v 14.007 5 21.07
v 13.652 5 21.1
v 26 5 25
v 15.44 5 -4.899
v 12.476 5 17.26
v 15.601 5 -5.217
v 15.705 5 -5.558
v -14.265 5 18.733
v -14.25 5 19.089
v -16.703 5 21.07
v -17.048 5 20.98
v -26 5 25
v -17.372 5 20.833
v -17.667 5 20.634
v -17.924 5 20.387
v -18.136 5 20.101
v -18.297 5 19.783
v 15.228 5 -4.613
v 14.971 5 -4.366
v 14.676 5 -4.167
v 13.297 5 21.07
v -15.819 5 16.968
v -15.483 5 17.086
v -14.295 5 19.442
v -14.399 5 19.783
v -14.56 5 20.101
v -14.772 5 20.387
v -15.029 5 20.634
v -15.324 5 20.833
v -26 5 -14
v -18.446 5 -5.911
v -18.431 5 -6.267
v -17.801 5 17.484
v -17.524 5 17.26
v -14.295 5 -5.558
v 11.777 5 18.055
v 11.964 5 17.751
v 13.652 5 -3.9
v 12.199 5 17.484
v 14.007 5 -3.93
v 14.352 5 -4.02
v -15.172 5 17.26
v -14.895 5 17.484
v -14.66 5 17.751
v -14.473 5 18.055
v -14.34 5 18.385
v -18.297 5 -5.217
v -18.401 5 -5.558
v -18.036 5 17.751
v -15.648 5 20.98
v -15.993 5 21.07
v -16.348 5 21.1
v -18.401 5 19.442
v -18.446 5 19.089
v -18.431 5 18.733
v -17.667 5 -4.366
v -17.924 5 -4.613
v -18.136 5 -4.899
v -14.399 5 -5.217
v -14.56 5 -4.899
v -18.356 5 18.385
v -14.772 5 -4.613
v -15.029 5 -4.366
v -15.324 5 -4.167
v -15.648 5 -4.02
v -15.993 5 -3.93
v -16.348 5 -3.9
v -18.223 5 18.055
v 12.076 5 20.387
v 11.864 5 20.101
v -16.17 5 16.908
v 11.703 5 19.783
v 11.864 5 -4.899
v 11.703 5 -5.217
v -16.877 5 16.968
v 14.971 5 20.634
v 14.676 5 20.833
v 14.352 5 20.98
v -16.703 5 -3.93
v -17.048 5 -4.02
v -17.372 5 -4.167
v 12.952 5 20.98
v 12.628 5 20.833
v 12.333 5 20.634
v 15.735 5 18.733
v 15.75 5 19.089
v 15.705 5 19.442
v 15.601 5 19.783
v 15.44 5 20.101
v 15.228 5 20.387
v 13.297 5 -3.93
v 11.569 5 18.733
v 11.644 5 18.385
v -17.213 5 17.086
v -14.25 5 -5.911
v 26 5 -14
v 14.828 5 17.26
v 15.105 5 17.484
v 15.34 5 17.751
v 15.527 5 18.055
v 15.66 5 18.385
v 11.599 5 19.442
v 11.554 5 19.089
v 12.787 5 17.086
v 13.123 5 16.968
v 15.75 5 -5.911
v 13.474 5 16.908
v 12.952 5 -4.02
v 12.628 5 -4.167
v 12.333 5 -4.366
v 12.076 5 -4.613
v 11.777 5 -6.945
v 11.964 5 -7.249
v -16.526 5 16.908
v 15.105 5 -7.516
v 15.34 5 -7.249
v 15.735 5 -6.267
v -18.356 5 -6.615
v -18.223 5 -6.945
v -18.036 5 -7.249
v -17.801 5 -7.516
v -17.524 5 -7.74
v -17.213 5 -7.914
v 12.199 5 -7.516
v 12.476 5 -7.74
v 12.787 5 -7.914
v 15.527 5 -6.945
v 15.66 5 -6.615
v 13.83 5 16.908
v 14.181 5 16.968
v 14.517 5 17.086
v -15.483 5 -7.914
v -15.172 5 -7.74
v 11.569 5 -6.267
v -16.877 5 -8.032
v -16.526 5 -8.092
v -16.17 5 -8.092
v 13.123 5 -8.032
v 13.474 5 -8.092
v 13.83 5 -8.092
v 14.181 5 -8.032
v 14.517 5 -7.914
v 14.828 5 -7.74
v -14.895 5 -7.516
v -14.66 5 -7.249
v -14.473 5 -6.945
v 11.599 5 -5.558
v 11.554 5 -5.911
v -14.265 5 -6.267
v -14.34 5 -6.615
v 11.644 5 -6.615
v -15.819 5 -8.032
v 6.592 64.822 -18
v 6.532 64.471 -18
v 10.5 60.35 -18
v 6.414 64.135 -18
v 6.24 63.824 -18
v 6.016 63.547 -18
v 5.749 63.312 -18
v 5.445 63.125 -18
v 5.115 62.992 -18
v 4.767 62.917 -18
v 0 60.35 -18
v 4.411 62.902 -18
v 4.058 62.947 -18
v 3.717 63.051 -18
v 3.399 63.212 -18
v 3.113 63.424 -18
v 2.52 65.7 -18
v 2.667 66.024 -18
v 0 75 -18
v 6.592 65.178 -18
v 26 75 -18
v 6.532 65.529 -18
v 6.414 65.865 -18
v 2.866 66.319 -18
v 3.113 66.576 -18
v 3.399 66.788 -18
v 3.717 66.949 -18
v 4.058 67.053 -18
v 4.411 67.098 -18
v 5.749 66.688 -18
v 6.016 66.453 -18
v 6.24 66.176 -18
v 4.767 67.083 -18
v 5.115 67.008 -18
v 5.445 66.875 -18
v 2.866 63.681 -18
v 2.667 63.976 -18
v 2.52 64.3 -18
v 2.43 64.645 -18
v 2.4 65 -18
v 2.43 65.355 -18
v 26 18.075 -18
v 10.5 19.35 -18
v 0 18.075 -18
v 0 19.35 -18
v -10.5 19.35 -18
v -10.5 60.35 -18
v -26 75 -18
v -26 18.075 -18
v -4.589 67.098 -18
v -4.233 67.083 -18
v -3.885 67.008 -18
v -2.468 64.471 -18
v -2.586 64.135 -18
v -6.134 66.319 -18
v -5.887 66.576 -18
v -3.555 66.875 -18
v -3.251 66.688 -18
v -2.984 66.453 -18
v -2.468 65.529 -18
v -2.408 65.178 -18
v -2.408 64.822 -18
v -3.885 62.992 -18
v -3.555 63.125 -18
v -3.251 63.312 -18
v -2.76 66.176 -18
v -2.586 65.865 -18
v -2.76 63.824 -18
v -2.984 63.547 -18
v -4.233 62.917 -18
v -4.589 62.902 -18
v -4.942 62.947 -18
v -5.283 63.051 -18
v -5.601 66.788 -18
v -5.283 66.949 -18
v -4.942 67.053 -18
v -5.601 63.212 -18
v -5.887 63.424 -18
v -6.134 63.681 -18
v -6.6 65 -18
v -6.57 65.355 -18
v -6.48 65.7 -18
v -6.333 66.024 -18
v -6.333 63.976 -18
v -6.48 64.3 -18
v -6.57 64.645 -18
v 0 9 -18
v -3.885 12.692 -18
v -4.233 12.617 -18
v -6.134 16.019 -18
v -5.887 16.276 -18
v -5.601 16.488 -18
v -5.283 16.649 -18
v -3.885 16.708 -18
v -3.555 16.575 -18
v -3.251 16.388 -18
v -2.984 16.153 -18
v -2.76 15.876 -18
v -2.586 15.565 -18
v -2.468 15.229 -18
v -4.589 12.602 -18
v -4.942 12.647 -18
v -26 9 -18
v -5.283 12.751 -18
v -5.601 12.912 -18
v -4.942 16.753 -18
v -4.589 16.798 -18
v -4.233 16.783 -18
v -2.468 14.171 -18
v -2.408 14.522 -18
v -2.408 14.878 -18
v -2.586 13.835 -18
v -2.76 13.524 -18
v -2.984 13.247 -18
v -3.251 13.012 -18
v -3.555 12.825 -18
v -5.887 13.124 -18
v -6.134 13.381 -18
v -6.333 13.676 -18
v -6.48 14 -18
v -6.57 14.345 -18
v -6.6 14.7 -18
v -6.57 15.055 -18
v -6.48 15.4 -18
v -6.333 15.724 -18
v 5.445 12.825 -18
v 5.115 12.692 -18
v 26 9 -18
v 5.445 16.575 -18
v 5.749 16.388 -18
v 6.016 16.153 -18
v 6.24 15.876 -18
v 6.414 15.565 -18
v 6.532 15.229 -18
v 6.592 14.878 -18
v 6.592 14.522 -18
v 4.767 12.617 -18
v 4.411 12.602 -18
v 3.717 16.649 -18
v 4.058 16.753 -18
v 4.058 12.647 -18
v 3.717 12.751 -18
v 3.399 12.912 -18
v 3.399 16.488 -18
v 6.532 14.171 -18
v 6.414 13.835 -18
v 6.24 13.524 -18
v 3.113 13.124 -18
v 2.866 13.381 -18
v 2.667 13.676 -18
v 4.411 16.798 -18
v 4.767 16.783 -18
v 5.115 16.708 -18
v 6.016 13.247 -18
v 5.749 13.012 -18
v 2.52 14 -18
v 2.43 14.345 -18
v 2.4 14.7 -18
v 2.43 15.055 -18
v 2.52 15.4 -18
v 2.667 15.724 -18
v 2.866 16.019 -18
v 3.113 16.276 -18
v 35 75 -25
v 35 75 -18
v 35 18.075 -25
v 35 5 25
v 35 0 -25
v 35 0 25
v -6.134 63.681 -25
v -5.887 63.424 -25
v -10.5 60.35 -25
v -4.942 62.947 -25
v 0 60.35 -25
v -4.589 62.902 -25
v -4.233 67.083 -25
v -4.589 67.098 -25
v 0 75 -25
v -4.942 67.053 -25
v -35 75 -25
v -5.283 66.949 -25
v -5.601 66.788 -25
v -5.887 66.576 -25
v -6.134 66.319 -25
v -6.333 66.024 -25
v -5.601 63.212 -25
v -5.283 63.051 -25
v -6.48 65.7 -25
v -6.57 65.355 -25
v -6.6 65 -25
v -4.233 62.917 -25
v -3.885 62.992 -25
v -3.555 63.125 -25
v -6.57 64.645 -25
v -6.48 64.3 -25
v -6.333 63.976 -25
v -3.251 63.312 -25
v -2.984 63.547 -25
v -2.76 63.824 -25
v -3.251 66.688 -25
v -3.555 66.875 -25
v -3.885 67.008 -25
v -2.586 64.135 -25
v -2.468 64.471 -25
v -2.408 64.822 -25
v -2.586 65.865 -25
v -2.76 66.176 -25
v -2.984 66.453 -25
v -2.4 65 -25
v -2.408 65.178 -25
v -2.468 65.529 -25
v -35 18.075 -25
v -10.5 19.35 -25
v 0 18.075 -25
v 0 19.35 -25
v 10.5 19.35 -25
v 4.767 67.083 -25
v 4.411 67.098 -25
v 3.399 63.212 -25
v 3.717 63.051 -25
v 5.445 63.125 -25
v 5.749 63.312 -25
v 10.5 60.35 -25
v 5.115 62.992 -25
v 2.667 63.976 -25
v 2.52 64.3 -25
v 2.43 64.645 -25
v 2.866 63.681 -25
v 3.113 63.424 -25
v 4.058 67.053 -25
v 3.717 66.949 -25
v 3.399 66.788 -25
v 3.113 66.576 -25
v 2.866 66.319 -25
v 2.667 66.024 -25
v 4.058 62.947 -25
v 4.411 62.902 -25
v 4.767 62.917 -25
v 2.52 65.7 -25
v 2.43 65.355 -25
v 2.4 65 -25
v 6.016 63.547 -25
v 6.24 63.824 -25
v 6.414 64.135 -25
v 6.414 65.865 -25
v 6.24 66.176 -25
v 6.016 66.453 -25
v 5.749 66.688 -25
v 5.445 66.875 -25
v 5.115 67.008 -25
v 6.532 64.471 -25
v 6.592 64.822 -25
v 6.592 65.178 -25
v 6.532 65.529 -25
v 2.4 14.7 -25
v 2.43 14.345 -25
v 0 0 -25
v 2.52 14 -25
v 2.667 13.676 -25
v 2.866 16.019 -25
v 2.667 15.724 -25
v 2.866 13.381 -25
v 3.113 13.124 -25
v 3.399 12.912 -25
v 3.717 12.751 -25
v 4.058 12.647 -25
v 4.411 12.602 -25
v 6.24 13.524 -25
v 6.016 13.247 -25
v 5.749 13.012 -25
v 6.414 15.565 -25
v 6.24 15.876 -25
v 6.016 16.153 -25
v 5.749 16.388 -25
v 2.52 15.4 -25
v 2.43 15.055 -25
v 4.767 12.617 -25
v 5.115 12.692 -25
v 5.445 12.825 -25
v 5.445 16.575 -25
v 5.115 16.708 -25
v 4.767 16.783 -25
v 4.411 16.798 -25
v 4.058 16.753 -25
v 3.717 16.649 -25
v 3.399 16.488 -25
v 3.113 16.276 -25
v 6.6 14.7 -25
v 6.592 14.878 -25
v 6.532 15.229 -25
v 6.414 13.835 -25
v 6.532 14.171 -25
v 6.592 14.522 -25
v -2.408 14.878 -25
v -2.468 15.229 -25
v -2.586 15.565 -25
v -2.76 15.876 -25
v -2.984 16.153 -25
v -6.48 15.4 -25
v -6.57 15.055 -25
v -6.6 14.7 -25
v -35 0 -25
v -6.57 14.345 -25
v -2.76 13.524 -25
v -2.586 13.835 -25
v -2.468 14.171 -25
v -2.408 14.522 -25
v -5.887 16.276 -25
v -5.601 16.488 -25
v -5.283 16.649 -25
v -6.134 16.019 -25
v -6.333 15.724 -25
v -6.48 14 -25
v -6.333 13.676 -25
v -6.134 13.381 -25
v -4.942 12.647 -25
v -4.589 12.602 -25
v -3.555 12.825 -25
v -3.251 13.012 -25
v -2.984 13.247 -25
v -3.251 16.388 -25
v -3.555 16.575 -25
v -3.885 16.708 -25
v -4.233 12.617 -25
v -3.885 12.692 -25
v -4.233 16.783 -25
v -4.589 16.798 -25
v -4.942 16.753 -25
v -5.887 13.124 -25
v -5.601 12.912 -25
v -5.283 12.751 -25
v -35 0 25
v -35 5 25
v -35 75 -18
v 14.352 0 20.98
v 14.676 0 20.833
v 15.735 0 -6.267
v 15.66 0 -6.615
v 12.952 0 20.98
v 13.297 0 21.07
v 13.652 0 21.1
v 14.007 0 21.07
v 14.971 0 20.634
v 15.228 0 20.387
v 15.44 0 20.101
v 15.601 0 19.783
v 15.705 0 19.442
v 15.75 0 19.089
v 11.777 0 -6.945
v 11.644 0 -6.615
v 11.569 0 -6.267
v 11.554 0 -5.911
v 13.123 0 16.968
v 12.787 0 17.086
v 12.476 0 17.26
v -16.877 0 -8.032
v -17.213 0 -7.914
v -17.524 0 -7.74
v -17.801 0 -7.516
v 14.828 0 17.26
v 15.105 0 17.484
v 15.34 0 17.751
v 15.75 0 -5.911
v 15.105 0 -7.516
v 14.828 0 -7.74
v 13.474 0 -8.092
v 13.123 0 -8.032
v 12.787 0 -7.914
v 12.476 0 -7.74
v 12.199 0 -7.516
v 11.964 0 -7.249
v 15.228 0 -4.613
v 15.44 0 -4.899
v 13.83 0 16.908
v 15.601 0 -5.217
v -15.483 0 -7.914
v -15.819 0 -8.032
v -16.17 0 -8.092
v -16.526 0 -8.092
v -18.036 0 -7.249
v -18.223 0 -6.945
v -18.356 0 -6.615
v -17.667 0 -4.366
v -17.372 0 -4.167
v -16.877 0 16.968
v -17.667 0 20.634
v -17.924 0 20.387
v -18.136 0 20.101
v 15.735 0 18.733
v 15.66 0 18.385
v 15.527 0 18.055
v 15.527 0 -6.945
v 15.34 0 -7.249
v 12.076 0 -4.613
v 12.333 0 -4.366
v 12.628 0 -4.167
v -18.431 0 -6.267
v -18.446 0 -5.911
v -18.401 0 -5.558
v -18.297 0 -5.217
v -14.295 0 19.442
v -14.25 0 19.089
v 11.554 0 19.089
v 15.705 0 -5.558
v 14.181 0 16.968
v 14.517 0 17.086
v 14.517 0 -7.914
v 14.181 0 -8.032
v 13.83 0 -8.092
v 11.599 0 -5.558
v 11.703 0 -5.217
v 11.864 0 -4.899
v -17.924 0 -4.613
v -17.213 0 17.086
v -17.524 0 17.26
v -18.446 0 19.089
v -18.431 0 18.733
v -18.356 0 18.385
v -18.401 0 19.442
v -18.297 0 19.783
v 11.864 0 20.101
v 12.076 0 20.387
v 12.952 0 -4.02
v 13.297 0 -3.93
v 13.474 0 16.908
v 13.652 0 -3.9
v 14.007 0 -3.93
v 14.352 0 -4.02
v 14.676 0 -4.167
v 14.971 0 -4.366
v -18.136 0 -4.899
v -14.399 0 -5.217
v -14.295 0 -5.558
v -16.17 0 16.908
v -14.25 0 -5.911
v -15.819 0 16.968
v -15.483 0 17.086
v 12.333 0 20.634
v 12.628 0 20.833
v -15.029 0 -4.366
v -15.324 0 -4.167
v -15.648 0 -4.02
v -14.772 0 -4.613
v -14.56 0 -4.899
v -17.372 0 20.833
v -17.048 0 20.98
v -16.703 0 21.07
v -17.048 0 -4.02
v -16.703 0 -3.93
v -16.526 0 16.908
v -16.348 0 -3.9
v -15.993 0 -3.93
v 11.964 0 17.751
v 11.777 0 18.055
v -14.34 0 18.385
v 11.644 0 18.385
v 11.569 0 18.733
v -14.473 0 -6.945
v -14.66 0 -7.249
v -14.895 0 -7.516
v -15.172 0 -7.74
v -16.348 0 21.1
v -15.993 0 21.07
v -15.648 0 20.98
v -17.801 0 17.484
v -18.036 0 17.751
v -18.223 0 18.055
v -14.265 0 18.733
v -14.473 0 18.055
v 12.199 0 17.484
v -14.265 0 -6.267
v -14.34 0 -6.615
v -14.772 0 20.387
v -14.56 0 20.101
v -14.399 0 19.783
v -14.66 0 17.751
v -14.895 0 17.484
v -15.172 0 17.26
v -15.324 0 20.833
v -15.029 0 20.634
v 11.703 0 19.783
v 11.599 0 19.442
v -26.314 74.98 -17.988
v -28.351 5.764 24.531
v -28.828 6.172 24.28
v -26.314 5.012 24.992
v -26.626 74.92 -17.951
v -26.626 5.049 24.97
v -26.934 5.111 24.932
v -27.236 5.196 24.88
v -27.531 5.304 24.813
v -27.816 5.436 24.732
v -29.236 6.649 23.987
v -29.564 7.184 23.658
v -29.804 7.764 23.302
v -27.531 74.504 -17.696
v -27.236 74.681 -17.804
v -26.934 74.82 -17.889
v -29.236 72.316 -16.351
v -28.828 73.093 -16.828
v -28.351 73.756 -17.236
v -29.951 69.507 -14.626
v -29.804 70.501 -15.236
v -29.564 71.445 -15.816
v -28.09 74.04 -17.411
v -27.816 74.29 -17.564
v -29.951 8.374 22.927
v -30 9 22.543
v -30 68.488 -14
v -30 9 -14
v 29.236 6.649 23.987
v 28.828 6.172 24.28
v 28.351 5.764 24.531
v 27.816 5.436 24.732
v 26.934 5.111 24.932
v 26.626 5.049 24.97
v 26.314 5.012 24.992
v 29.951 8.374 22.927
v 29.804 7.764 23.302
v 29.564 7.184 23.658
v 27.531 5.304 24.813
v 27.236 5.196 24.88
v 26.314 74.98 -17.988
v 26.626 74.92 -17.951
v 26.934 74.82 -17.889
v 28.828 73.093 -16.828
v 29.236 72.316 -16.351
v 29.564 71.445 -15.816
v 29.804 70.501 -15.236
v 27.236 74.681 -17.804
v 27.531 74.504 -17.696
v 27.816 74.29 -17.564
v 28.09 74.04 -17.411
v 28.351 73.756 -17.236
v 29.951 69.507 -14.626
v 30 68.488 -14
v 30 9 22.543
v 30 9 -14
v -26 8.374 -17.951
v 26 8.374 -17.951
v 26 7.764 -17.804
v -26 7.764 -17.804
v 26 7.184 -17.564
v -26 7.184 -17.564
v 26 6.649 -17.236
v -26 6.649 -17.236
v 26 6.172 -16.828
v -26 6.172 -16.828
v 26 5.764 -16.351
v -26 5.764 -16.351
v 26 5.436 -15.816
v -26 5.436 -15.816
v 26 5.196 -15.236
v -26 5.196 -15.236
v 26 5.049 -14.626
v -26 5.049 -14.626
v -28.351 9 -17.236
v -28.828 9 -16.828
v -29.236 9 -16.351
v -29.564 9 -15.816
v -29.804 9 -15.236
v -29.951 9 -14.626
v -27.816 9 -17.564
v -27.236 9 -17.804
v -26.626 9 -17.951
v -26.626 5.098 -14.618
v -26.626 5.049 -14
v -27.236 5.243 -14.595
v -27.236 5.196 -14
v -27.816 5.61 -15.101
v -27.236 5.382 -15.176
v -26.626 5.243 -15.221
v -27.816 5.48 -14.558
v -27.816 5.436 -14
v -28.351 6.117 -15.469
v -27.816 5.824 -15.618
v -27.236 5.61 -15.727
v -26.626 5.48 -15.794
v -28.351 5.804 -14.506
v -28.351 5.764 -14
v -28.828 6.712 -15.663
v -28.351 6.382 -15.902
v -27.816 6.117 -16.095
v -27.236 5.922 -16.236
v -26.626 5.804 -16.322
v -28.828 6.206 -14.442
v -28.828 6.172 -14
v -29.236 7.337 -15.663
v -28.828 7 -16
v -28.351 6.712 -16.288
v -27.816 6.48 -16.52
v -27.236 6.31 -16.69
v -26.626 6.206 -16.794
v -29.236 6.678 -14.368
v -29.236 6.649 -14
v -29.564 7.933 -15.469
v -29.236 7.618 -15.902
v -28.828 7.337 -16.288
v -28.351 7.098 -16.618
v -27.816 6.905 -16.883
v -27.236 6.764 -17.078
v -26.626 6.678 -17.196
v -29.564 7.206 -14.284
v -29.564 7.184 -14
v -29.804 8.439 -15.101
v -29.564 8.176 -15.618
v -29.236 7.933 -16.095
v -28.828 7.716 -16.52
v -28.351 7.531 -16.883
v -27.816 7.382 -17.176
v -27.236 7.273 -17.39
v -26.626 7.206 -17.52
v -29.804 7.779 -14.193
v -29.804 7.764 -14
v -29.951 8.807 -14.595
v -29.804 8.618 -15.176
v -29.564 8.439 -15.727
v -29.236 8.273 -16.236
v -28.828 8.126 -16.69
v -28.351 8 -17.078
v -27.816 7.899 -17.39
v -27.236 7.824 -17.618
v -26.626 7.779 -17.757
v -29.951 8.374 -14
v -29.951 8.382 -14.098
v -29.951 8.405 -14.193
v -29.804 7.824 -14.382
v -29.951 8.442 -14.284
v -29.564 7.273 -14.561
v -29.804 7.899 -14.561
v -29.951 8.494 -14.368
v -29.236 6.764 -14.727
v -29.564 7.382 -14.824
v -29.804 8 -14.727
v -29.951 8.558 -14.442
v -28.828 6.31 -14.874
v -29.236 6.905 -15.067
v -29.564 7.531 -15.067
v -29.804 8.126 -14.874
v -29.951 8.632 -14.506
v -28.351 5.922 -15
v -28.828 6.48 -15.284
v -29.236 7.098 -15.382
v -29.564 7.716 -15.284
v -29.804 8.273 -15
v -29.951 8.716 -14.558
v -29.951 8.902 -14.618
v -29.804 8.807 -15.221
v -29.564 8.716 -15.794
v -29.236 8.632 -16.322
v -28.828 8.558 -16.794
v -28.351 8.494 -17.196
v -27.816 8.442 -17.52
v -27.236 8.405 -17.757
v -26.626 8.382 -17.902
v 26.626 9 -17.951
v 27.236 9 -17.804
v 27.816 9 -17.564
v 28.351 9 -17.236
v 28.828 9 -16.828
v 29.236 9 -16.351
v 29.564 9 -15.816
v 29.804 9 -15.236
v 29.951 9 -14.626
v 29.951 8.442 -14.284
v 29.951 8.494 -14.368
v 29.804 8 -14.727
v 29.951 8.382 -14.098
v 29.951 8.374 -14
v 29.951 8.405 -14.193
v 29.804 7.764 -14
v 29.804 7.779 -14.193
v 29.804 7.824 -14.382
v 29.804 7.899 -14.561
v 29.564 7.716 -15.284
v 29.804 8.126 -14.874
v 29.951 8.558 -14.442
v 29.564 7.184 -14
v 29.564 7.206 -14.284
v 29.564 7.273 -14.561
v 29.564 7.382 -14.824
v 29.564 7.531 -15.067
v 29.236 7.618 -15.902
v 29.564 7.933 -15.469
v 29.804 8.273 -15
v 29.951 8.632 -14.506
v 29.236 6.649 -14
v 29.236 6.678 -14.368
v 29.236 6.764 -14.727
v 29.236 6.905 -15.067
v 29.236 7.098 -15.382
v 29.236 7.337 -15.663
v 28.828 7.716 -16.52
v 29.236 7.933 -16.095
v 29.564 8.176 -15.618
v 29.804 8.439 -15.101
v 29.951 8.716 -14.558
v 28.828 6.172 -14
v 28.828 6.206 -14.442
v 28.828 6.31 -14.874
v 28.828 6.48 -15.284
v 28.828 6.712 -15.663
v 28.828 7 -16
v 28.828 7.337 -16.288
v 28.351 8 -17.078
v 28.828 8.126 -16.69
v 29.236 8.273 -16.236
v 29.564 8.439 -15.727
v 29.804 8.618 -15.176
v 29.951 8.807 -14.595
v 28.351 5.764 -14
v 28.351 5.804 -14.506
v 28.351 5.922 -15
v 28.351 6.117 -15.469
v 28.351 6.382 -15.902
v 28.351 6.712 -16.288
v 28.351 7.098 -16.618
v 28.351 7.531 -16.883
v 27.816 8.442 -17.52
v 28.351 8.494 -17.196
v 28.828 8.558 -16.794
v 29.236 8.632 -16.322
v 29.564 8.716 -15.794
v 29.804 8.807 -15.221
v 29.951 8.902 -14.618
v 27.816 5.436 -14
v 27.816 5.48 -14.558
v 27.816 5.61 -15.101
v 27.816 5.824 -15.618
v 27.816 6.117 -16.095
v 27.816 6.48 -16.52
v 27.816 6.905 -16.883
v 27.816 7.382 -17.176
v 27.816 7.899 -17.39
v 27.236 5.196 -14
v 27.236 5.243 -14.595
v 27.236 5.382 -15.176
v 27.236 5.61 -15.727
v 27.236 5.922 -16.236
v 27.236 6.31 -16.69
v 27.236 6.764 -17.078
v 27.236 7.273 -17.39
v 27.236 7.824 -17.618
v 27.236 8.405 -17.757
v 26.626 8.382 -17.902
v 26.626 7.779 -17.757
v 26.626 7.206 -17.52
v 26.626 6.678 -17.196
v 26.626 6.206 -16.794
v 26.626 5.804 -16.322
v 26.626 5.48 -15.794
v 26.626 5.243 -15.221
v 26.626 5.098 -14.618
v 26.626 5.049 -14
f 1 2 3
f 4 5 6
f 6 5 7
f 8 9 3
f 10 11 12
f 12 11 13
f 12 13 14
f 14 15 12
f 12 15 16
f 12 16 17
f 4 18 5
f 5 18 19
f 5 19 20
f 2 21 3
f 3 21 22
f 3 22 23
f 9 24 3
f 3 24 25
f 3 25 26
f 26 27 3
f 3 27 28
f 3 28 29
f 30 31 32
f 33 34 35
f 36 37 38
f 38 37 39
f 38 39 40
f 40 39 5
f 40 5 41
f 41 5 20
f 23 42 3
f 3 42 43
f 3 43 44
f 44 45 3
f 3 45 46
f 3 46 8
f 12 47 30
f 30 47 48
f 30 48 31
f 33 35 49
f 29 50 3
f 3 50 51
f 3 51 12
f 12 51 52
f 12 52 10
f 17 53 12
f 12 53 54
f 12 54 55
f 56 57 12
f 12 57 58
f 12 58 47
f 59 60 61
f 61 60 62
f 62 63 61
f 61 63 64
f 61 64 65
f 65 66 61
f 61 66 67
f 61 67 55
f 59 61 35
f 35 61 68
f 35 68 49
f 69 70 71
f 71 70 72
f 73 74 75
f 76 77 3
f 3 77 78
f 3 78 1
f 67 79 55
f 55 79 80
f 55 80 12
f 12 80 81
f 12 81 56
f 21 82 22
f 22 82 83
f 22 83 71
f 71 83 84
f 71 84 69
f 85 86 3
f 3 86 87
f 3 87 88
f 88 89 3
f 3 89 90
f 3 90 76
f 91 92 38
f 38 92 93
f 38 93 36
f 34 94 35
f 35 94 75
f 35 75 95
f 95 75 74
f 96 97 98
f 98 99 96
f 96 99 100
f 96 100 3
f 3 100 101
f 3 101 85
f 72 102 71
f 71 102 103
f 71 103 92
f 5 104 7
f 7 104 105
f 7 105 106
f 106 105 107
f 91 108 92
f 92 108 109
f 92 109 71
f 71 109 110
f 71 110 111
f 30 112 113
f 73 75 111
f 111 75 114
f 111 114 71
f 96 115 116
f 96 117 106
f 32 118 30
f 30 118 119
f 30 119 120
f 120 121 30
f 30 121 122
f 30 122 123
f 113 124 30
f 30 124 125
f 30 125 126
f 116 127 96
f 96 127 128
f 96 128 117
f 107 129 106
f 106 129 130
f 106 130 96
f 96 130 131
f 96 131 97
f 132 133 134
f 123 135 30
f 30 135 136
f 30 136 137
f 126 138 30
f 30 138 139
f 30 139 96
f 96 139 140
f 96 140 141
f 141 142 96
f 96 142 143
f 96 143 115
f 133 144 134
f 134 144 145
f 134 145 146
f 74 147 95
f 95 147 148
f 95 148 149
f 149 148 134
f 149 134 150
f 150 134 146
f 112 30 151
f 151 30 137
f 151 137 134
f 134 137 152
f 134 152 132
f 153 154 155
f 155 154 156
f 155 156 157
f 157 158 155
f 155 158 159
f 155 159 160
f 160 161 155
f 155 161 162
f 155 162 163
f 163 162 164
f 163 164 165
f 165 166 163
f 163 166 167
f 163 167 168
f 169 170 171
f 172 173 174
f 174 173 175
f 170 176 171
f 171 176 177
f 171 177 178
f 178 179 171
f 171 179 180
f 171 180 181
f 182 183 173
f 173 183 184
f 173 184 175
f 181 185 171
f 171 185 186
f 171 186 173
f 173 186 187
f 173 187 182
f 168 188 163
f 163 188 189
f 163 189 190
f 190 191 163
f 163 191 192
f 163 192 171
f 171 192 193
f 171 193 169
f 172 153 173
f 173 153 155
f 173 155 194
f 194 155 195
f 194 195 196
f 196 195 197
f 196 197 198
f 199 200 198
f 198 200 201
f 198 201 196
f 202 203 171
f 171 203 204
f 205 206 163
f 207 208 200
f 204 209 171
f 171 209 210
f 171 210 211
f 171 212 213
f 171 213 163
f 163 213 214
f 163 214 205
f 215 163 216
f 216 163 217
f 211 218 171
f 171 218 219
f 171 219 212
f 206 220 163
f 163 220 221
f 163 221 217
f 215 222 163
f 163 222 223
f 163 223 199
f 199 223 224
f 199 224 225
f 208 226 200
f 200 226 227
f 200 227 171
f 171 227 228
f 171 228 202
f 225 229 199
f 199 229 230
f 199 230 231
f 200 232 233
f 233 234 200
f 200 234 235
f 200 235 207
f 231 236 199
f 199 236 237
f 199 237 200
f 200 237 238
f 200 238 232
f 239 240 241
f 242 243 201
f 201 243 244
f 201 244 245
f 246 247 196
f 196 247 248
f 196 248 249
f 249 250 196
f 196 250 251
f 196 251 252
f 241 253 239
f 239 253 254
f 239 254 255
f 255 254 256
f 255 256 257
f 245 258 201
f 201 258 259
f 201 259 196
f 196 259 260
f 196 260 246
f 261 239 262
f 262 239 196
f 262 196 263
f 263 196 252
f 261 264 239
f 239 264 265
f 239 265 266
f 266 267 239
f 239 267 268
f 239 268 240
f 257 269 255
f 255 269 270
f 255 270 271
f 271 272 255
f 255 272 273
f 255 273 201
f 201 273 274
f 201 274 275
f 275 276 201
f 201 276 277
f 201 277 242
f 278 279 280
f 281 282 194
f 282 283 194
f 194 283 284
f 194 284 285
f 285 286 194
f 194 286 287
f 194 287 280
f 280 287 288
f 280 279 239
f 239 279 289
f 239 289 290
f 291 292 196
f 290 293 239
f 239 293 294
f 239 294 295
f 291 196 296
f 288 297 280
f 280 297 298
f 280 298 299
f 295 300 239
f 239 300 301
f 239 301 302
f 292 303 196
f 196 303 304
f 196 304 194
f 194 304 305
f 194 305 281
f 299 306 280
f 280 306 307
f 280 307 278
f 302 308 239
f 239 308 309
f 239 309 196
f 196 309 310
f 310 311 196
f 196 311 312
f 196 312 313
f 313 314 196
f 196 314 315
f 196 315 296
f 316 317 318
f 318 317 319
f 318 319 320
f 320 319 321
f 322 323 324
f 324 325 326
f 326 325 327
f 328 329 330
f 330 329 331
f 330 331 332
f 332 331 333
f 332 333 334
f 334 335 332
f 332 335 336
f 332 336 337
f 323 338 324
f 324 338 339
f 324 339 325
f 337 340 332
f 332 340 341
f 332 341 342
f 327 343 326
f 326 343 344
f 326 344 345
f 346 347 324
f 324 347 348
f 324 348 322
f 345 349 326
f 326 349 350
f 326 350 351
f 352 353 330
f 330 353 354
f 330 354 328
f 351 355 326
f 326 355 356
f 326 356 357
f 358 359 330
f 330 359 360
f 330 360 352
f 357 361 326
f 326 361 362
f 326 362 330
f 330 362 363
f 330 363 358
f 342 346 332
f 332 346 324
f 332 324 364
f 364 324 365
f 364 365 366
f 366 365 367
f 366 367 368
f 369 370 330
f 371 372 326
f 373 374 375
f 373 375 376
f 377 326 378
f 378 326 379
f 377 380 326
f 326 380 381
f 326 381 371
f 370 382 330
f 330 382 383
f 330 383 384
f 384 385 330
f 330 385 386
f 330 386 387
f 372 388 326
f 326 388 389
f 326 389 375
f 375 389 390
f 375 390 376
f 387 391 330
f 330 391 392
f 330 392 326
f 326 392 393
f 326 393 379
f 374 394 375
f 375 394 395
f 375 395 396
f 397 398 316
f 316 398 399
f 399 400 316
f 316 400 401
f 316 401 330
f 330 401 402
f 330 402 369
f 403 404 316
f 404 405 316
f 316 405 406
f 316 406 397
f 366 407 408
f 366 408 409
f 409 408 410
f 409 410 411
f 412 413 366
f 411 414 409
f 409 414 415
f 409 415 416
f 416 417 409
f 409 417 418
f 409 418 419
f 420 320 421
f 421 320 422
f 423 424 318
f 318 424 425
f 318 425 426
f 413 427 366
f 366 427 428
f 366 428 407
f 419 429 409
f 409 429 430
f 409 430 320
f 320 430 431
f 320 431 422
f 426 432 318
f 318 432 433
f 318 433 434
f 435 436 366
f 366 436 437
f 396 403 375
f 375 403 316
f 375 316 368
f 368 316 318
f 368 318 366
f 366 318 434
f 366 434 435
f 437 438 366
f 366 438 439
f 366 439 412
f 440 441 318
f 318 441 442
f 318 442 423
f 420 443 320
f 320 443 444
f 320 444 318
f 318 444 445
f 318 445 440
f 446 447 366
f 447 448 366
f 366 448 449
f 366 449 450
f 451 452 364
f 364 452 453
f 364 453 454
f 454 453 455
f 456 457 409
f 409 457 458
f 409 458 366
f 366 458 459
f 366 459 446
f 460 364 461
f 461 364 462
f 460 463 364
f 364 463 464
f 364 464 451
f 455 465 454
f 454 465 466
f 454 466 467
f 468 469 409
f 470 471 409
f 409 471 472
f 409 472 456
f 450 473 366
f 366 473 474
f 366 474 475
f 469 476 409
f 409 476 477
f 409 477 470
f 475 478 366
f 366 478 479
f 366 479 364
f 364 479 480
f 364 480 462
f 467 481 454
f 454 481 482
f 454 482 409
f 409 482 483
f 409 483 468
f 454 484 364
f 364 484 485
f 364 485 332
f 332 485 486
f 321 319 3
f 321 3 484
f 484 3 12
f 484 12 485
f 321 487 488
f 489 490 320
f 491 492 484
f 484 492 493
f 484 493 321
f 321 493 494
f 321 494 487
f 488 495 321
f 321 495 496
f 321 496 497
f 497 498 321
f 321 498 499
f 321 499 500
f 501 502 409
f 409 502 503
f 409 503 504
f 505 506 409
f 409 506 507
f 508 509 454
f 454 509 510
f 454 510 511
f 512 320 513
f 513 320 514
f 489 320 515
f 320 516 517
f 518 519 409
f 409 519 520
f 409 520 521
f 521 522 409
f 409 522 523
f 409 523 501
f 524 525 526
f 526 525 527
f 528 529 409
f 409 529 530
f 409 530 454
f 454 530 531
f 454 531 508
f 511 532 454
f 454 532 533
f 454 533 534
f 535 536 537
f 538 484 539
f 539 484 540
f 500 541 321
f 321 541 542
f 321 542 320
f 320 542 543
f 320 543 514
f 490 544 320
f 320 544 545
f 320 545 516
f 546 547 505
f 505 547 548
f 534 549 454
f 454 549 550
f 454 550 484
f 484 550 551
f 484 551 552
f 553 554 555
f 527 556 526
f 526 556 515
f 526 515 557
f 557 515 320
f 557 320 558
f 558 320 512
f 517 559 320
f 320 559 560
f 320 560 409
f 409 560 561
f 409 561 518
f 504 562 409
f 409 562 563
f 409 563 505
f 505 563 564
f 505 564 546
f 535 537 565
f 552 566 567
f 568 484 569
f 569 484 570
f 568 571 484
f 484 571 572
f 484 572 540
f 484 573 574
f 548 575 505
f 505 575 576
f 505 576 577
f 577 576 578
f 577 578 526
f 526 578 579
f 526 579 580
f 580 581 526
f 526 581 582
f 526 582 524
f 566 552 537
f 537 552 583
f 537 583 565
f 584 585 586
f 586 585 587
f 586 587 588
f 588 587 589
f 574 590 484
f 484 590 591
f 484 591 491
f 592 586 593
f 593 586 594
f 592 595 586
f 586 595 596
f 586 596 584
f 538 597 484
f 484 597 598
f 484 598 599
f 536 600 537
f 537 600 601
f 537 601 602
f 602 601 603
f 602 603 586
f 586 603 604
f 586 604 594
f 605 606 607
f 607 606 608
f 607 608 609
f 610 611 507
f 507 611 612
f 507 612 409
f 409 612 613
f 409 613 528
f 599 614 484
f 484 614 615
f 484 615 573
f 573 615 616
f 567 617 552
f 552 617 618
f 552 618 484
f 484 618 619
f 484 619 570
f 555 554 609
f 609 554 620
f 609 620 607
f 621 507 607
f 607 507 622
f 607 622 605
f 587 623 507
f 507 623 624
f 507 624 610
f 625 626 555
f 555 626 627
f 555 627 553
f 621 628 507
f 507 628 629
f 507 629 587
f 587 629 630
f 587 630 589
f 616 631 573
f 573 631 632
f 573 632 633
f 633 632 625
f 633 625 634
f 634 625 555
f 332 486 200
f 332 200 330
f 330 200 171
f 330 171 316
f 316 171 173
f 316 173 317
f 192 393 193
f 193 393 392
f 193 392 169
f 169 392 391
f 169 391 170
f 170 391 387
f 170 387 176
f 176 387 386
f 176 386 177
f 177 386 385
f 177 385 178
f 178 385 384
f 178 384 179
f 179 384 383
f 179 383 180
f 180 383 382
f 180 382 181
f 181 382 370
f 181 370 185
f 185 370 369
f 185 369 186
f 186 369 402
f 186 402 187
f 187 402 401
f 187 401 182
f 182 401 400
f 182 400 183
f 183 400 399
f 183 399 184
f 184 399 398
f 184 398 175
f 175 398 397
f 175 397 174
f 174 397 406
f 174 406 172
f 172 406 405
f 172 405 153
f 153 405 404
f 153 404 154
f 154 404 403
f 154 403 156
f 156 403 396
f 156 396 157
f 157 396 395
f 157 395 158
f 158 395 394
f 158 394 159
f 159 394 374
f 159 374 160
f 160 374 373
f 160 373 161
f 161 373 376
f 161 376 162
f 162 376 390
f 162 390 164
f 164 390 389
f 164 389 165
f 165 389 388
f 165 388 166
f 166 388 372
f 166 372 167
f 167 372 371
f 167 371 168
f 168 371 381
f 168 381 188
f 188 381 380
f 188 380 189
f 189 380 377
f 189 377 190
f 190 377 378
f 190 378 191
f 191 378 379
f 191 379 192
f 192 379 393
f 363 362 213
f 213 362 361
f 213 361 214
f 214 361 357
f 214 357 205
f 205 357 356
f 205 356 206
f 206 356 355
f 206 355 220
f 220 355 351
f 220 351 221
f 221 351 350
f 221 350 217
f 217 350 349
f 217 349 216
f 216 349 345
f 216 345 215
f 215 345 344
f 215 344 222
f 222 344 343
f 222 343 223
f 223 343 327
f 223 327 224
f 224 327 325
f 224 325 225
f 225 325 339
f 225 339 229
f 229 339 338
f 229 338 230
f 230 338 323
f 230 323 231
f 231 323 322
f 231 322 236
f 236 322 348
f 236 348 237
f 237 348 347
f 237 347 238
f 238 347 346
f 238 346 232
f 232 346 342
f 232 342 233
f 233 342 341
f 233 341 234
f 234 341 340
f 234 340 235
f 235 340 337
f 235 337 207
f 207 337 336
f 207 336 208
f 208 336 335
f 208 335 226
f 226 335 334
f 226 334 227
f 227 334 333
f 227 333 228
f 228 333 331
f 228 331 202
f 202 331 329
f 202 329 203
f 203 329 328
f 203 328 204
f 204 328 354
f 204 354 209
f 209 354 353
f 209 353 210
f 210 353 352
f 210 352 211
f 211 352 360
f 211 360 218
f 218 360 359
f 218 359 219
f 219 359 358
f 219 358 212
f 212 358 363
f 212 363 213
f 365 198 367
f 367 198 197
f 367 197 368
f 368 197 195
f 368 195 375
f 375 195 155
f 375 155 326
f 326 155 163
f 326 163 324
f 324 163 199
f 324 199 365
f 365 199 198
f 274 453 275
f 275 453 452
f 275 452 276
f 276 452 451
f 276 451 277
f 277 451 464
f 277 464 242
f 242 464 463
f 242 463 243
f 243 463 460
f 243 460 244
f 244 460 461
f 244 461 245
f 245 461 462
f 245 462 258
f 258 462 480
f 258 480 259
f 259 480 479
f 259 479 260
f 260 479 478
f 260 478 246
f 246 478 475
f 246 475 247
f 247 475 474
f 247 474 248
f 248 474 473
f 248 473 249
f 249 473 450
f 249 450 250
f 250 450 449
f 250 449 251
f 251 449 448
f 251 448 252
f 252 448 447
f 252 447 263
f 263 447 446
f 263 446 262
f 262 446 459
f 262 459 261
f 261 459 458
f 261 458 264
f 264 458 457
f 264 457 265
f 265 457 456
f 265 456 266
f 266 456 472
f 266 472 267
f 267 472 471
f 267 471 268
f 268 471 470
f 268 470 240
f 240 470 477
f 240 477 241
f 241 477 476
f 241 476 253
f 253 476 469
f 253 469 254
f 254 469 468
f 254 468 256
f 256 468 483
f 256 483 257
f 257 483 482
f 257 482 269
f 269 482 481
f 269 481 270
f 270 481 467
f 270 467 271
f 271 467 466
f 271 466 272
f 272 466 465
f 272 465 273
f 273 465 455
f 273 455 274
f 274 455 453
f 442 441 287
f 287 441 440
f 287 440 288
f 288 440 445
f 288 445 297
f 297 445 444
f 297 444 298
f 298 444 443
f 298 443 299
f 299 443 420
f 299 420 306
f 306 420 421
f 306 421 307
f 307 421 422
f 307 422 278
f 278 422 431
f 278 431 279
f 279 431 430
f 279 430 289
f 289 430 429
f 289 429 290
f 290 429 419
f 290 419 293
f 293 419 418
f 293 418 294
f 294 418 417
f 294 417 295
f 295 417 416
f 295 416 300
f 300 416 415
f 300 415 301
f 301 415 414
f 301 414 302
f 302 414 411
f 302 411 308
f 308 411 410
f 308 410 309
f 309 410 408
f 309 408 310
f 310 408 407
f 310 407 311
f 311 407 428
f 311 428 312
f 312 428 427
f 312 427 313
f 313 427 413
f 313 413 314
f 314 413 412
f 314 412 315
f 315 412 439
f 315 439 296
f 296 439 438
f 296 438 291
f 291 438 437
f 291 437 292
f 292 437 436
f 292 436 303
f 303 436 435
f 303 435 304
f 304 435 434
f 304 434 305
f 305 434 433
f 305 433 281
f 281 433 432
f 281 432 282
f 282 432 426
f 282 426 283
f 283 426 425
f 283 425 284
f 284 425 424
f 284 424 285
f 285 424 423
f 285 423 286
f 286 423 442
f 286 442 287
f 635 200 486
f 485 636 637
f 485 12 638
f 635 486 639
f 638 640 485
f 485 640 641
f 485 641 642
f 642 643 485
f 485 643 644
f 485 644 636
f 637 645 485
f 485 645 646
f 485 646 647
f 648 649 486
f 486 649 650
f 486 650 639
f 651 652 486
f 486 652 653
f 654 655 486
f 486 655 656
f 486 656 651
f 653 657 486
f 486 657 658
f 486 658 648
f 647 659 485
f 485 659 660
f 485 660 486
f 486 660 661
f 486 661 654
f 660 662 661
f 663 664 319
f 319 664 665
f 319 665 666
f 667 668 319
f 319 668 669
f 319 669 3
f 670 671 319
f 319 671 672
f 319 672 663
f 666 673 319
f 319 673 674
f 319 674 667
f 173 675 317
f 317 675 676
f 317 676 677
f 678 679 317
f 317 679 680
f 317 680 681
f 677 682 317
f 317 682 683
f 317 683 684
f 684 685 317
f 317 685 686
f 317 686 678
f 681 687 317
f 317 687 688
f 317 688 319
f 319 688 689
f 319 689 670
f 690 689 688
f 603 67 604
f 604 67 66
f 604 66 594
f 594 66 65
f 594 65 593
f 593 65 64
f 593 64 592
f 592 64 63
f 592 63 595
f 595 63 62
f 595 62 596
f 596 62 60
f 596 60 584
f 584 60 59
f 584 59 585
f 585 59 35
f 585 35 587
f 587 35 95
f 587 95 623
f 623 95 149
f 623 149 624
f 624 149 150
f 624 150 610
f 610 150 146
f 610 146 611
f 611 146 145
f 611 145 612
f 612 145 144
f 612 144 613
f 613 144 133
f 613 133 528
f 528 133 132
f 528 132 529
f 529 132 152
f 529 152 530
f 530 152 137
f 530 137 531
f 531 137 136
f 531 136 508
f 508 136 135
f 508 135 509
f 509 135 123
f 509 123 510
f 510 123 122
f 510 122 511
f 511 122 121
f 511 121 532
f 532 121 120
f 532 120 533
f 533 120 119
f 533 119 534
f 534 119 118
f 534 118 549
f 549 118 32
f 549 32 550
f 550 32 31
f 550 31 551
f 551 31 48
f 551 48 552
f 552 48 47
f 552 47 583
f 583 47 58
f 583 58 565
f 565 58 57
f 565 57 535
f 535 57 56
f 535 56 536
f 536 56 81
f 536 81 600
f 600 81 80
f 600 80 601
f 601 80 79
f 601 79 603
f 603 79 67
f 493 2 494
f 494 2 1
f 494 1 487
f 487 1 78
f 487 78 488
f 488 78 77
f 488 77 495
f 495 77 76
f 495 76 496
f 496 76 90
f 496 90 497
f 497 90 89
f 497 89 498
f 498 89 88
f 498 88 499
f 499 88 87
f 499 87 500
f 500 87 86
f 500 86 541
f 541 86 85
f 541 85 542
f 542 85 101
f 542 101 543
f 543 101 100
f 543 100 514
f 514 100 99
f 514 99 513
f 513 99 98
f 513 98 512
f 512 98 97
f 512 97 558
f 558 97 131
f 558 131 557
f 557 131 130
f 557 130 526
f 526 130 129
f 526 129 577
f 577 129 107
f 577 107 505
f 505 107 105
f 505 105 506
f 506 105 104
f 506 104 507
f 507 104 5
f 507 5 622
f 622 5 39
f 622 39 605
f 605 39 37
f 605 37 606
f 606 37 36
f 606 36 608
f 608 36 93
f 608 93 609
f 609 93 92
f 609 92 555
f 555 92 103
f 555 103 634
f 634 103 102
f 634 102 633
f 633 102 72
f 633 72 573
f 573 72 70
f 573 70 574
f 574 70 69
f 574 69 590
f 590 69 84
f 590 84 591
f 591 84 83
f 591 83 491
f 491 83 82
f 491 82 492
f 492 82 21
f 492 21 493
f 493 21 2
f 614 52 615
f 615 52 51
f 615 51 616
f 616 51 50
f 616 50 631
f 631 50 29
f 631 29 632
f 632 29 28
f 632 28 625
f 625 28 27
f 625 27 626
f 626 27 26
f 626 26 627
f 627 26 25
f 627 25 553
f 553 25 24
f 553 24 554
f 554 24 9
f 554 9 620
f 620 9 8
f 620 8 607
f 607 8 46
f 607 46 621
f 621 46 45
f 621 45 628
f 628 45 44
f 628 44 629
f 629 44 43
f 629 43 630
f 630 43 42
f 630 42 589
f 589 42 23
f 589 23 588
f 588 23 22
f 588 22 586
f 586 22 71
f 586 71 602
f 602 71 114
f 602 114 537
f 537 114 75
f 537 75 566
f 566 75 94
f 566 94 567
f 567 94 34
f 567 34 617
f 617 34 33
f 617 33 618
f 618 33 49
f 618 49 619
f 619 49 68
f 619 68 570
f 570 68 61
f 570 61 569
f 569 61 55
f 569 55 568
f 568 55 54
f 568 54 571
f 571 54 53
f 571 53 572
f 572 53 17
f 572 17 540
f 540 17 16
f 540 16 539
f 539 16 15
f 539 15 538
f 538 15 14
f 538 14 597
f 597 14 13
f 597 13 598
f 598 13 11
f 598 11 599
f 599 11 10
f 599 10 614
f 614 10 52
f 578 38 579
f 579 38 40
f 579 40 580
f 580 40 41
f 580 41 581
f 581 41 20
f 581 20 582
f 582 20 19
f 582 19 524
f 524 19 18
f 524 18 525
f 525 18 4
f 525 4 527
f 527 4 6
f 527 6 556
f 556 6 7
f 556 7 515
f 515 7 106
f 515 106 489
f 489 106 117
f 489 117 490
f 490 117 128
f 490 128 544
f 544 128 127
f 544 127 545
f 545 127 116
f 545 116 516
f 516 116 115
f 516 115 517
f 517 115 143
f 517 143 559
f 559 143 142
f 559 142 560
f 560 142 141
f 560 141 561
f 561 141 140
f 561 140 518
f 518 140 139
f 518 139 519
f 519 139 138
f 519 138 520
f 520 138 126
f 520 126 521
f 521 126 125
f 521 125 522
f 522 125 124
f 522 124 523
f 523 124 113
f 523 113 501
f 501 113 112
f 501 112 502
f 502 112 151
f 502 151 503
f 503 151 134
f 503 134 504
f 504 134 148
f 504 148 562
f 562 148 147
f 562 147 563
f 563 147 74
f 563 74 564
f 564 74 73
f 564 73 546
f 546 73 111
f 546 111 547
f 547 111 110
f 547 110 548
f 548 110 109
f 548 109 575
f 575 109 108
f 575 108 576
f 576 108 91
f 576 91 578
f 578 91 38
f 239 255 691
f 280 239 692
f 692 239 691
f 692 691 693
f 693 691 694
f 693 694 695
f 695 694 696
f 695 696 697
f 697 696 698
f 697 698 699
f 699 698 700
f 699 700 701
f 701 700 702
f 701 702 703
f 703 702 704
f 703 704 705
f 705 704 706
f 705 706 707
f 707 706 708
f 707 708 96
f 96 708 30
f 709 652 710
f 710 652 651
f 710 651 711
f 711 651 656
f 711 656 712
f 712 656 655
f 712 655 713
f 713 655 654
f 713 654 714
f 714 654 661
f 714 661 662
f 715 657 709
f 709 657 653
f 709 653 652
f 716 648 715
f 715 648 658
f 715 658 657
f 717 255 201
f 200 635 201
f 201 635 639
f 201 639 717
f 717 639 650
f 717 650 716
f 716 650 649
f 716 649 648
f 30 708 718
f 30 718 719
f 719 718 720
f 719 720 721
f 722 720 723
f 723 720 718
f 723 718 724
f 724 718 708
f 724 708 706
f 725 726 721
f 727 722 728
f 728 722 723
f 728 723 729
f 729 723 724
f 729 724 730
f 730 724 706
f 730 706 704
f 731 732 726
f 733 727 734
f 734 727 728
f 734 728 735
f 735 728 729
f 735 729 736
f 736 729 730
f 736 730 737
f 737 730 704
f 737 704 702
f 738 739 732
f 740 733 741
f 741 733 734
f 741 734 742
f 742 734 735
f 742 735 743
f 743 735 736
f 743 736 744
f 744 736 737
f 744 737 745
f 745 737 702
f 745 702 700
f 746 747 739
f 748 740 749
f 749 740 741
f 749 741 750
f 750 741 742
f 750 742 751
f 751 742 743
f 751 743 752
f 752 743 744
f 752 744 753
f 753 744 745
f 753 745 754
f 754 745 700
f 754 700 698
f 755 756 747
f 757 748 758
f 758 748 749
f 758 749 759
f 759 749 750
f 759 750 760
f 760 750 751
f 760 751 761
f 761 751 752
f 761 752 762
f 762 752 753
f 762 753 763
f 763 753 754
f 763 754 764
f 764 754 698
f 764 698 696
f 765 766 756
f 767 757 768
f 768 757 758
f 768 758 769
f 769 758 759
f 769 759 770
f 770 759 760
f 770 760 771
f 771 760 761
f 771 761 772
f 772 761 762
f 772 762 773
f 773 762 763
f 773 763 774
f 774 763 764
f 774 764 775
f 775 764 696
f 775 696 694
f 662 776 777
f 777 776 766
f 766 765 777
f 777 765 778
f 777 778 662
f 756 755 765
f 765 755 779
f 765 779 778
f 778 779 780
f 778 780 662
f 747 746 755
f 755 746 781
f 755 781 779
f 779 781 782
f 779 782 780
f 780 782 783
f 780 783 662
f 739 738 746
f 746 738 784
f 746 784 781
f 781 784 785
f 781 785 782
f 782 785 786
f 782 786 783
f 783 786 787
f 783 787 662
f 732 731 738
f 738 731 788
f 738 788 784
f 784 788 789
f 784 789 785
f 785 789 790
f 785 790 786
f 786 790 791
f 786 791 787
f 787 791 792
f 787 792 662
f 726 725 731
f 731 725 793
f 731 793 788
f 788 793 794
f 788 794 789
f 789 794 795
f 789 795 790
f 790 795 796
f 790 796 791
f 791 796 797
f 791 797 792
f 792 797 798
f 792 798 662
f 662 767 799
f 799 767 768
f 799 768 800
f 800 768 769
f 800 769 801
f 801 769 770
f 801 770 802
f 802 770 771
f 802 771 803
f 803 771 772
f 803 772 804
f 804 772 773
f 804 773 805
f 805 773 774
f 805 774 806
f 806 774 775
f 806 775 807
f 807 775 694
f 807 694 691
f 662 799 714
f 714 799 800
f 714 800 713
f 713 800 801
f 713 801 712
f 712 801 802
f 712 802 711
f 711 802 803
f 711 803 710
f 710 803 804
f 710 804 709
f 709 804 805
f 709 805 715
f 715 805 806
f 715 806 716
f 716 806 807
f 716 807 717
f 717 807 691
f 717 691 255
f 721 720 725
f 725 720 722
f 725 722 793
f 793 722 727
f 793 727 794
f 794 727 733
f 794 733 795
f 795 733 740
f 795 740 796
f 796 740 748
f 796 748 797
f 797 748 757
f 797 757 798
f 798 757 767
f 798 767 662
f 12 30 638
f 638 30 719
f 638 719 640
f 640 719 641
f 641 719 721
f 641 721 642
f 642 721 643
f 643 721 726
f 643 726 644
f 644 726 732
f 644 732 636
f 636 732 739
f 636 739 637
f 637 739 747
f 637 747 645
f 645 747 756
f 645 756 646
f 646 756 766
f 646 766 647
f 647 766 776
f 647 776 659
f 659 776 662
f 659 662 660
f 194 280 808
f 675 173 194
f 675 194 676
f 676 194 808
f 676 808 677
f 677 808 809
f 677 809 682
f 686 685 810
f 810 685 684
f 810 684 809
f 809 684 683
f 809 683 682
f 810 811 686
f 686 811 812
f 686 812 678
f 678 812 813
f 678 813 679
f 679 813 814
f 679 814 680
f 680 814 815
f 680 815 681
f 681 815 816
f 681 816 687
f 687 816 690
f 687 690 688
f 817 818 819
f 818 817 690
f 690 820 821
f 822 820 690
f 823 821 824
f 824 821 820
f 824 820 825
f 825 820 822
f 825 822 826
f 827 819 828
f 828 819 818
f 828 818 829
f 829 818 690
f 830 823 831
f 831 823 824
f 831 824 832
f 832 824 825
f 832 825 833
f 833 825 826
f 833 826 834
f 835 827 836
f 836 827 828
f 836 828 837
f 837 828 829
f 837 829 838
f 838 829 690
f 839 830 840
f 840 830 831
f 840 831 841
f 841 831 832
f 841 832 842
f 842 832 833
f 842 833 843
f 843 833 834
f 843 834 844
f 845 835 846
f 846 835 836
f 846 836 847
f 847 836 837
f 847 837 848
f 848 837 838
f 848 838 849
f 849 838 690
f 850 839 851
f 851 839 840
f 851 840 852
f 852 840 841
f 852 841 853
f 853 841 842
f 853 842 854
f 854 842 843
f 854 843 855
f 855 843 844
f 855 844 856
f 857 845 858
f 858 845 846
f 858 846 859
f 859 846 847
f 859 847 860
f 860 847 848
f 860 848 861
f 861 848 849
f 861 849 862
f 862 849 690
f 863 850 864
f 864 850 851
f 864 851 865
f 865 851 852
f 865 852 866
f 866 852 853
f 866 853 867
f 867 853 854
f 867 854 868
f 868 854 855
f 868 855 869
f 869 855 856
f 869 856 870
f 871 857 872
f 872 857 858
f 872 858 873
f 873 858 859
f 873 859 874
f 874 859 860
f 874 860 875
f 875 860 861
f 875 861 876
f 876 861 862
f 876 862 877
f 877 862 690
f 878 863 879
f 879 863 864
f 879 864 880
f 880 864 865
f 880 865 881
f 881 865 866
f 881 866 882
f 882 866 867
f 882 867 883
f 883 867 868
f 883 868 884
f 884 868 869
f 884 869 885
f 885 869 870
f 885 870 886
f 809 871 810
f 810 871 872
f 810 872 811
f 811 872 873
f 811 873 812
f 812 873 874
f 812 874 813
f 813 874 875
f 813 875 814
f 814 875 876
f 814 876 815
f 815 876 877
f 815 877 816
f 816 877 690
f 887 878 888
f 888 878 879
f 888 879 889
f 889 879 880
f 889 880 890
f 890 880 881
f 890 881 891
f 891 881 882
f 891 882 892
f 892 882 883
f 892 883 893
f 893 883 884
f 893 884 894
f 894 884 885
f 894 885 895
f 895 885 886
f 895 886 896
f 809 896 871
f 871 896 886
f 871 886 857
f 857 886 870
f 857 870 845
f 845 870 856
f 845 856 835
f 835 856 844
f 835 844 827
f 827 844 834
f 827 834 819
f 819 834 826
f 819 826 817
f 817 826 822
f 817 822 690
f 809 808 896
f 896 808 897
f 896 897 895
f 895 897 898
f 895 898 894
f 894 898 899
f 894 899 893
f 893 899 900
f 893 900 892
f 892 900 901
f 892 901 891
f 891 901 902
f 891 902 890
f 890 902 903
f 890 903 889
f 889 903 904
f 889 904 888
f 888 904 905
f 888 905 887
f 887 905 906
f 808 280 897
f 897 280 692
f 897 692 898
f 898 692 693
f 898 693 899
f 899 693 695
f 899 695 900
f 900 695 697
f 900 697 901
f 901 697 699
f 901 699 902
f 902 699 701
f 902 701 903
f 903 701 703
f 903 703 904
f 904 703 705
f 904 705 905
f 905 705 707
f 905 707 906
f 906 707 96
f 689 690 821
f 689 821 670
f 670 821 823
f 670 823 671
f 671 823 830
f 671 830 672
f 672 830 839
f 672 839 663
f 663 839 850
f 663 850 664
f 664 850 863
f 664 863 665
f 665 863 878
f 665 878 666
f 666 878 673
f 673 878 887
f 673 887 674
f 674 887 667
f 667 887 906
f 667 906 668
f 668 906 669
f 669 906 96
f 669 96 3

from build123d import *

# Parameters (mm, degrees)
SKETCH1_W           = 70
SKETCH1_H           = 50
BOSS_EXTRUDE1_DEPTH = 5
SKETCH2_W           = 70
SKETCH2_H           = 7
BOSS_EXTRUDE2_DEPTH = 70
SKETCH3_R           = 2.1
SKETCH3_W           = 21
SKETCH3_H           = 41
CUT_EXTRUDE1_DEPTH  = 70
BOSS_EXTRUDE3_DEPTH = 5
BOSS_EXTRUDE4_DEPTH = 5
SKETCH8_R           = 2.1
CUT_EXTRUDE2_DEPTH  = 5
FILLET1_R           = 4
FILLET2_R           = 4


with BuildPart() as part:
    # Sketch1 → Boss-Extrude1 (new body)
    with BuildSketch(Plane(origin=(0, 0, 0), x_dir=(1, 0, 0), z_dir=(0, 1, 0))):
        Rectangle(SKETCH1_W, SKETCH1_H)
    extrude(amount=BOSS_EXTRUDE1_DEPTH)

    # Sketch2 → Boss-Extrude2 (add)
    with BuildSketch(Plane(origin=(0, 5, 0), x_dir=(1, 0, 0), z_dir=(0, 1, 0))):
        with Locations((0, 21.5)):
            Rectangle(SKETCH2_W, SKETCH2_H)
    extrude(amount=BOSS_EXTRUDE2_DEPTH)

    # Sketch3 → Cut-Extrude1 (cut)
    with BuildSketch(Plane(origin=(0, 0, -25), x_dir=(-1, 0, 0), z_dir=(0, 0, -1))):
        with Locations((-4.5, 65)):
            Circle(SKETCH3_R)
        with Locations((4.5, 65)):
            Circle(SKETCH3_R)
        with Locations((4.5, 14.7)):
            Circle(SKETCH3_R)
        with Locations((-4.5, 14.7)):
            Circle(SKETCH3_R)
        with Locations((0, 39.85)):
            Rectangle(SKETCH3_W, SKETCH3_H)
    extrude(amount=-CUT_EXTRUDE1_DEPTH, mode=Mode.SUBTRACT)

    # Sketch6 → Boss-Extrude3 (add)
    with BuildSketch(Plane.ZY.offset(35)):
        Polygon((-18, 75), (25, 5), (-18, 5), align=None)
    extrude(amount=-BOSS_EXTRUDE3_DEPTH)

    # Sketch7 → Boss-Extrude4 (add)
    with BuildSketch(Plane(origin=(35, 0, 0), x_dir=(0, 0, -1), z_dir=(1, 0, 0))):
        Polygon((18, 75), (-25, 5), (18, 5), align=None)
    extrude(amount=-BOSS_EXTRUDE4_DEPTH)

    # Sketch8 → Cut-Extrude2 (cut)
    with BuildSketch(Plane(origin=(0, 5, 0), x_dir=(1, 0, 0), z_dir=(0, 1, 0))):
        with Locations(Location((-16.347962706, 6, 0), (0, 0, 270))):
            Circle(SKETCH8_R)
        with Locations(Location((13.652037294, 6, 0), (0, 0, 270))):
            Circle(SKETCH8_R)
        with Locations(Location((-16.347962706, -19, 0), (0, 0, 270))):
            Circle(SKETCH8_R)
        with Locations(Location((13.652037294, -19, 0), (0, 0, 270))):
            Circle(SKETCH8_R)
    extrude(amount=-CUT_EXTRUDE2_DEPTH, mode=Mode.SUBTRACT)

    # Fillet1
    fillet1_edges = [part.edges().sort_by_distance(p)[0] for p in [
        (0, 5, -18),
    ]]
    fillet(fillet1_edges, radius=FILLET1_R)

    # Fillet2
    fillet2_edges = [part.edges().sort_by_distance(p)[0] for p in [
        (30, 42, -18),
        (30, 6.171572875, -16.828427125),
        (-30, 5, 5.5),
        (-30, 6.171572875, -16.828427125),
        (-30, 42, -18),
        (30, 5, 5.5),
    ]]
    fillet(fillet2_edges, radius=FILLET2_R)


solid = part.part
